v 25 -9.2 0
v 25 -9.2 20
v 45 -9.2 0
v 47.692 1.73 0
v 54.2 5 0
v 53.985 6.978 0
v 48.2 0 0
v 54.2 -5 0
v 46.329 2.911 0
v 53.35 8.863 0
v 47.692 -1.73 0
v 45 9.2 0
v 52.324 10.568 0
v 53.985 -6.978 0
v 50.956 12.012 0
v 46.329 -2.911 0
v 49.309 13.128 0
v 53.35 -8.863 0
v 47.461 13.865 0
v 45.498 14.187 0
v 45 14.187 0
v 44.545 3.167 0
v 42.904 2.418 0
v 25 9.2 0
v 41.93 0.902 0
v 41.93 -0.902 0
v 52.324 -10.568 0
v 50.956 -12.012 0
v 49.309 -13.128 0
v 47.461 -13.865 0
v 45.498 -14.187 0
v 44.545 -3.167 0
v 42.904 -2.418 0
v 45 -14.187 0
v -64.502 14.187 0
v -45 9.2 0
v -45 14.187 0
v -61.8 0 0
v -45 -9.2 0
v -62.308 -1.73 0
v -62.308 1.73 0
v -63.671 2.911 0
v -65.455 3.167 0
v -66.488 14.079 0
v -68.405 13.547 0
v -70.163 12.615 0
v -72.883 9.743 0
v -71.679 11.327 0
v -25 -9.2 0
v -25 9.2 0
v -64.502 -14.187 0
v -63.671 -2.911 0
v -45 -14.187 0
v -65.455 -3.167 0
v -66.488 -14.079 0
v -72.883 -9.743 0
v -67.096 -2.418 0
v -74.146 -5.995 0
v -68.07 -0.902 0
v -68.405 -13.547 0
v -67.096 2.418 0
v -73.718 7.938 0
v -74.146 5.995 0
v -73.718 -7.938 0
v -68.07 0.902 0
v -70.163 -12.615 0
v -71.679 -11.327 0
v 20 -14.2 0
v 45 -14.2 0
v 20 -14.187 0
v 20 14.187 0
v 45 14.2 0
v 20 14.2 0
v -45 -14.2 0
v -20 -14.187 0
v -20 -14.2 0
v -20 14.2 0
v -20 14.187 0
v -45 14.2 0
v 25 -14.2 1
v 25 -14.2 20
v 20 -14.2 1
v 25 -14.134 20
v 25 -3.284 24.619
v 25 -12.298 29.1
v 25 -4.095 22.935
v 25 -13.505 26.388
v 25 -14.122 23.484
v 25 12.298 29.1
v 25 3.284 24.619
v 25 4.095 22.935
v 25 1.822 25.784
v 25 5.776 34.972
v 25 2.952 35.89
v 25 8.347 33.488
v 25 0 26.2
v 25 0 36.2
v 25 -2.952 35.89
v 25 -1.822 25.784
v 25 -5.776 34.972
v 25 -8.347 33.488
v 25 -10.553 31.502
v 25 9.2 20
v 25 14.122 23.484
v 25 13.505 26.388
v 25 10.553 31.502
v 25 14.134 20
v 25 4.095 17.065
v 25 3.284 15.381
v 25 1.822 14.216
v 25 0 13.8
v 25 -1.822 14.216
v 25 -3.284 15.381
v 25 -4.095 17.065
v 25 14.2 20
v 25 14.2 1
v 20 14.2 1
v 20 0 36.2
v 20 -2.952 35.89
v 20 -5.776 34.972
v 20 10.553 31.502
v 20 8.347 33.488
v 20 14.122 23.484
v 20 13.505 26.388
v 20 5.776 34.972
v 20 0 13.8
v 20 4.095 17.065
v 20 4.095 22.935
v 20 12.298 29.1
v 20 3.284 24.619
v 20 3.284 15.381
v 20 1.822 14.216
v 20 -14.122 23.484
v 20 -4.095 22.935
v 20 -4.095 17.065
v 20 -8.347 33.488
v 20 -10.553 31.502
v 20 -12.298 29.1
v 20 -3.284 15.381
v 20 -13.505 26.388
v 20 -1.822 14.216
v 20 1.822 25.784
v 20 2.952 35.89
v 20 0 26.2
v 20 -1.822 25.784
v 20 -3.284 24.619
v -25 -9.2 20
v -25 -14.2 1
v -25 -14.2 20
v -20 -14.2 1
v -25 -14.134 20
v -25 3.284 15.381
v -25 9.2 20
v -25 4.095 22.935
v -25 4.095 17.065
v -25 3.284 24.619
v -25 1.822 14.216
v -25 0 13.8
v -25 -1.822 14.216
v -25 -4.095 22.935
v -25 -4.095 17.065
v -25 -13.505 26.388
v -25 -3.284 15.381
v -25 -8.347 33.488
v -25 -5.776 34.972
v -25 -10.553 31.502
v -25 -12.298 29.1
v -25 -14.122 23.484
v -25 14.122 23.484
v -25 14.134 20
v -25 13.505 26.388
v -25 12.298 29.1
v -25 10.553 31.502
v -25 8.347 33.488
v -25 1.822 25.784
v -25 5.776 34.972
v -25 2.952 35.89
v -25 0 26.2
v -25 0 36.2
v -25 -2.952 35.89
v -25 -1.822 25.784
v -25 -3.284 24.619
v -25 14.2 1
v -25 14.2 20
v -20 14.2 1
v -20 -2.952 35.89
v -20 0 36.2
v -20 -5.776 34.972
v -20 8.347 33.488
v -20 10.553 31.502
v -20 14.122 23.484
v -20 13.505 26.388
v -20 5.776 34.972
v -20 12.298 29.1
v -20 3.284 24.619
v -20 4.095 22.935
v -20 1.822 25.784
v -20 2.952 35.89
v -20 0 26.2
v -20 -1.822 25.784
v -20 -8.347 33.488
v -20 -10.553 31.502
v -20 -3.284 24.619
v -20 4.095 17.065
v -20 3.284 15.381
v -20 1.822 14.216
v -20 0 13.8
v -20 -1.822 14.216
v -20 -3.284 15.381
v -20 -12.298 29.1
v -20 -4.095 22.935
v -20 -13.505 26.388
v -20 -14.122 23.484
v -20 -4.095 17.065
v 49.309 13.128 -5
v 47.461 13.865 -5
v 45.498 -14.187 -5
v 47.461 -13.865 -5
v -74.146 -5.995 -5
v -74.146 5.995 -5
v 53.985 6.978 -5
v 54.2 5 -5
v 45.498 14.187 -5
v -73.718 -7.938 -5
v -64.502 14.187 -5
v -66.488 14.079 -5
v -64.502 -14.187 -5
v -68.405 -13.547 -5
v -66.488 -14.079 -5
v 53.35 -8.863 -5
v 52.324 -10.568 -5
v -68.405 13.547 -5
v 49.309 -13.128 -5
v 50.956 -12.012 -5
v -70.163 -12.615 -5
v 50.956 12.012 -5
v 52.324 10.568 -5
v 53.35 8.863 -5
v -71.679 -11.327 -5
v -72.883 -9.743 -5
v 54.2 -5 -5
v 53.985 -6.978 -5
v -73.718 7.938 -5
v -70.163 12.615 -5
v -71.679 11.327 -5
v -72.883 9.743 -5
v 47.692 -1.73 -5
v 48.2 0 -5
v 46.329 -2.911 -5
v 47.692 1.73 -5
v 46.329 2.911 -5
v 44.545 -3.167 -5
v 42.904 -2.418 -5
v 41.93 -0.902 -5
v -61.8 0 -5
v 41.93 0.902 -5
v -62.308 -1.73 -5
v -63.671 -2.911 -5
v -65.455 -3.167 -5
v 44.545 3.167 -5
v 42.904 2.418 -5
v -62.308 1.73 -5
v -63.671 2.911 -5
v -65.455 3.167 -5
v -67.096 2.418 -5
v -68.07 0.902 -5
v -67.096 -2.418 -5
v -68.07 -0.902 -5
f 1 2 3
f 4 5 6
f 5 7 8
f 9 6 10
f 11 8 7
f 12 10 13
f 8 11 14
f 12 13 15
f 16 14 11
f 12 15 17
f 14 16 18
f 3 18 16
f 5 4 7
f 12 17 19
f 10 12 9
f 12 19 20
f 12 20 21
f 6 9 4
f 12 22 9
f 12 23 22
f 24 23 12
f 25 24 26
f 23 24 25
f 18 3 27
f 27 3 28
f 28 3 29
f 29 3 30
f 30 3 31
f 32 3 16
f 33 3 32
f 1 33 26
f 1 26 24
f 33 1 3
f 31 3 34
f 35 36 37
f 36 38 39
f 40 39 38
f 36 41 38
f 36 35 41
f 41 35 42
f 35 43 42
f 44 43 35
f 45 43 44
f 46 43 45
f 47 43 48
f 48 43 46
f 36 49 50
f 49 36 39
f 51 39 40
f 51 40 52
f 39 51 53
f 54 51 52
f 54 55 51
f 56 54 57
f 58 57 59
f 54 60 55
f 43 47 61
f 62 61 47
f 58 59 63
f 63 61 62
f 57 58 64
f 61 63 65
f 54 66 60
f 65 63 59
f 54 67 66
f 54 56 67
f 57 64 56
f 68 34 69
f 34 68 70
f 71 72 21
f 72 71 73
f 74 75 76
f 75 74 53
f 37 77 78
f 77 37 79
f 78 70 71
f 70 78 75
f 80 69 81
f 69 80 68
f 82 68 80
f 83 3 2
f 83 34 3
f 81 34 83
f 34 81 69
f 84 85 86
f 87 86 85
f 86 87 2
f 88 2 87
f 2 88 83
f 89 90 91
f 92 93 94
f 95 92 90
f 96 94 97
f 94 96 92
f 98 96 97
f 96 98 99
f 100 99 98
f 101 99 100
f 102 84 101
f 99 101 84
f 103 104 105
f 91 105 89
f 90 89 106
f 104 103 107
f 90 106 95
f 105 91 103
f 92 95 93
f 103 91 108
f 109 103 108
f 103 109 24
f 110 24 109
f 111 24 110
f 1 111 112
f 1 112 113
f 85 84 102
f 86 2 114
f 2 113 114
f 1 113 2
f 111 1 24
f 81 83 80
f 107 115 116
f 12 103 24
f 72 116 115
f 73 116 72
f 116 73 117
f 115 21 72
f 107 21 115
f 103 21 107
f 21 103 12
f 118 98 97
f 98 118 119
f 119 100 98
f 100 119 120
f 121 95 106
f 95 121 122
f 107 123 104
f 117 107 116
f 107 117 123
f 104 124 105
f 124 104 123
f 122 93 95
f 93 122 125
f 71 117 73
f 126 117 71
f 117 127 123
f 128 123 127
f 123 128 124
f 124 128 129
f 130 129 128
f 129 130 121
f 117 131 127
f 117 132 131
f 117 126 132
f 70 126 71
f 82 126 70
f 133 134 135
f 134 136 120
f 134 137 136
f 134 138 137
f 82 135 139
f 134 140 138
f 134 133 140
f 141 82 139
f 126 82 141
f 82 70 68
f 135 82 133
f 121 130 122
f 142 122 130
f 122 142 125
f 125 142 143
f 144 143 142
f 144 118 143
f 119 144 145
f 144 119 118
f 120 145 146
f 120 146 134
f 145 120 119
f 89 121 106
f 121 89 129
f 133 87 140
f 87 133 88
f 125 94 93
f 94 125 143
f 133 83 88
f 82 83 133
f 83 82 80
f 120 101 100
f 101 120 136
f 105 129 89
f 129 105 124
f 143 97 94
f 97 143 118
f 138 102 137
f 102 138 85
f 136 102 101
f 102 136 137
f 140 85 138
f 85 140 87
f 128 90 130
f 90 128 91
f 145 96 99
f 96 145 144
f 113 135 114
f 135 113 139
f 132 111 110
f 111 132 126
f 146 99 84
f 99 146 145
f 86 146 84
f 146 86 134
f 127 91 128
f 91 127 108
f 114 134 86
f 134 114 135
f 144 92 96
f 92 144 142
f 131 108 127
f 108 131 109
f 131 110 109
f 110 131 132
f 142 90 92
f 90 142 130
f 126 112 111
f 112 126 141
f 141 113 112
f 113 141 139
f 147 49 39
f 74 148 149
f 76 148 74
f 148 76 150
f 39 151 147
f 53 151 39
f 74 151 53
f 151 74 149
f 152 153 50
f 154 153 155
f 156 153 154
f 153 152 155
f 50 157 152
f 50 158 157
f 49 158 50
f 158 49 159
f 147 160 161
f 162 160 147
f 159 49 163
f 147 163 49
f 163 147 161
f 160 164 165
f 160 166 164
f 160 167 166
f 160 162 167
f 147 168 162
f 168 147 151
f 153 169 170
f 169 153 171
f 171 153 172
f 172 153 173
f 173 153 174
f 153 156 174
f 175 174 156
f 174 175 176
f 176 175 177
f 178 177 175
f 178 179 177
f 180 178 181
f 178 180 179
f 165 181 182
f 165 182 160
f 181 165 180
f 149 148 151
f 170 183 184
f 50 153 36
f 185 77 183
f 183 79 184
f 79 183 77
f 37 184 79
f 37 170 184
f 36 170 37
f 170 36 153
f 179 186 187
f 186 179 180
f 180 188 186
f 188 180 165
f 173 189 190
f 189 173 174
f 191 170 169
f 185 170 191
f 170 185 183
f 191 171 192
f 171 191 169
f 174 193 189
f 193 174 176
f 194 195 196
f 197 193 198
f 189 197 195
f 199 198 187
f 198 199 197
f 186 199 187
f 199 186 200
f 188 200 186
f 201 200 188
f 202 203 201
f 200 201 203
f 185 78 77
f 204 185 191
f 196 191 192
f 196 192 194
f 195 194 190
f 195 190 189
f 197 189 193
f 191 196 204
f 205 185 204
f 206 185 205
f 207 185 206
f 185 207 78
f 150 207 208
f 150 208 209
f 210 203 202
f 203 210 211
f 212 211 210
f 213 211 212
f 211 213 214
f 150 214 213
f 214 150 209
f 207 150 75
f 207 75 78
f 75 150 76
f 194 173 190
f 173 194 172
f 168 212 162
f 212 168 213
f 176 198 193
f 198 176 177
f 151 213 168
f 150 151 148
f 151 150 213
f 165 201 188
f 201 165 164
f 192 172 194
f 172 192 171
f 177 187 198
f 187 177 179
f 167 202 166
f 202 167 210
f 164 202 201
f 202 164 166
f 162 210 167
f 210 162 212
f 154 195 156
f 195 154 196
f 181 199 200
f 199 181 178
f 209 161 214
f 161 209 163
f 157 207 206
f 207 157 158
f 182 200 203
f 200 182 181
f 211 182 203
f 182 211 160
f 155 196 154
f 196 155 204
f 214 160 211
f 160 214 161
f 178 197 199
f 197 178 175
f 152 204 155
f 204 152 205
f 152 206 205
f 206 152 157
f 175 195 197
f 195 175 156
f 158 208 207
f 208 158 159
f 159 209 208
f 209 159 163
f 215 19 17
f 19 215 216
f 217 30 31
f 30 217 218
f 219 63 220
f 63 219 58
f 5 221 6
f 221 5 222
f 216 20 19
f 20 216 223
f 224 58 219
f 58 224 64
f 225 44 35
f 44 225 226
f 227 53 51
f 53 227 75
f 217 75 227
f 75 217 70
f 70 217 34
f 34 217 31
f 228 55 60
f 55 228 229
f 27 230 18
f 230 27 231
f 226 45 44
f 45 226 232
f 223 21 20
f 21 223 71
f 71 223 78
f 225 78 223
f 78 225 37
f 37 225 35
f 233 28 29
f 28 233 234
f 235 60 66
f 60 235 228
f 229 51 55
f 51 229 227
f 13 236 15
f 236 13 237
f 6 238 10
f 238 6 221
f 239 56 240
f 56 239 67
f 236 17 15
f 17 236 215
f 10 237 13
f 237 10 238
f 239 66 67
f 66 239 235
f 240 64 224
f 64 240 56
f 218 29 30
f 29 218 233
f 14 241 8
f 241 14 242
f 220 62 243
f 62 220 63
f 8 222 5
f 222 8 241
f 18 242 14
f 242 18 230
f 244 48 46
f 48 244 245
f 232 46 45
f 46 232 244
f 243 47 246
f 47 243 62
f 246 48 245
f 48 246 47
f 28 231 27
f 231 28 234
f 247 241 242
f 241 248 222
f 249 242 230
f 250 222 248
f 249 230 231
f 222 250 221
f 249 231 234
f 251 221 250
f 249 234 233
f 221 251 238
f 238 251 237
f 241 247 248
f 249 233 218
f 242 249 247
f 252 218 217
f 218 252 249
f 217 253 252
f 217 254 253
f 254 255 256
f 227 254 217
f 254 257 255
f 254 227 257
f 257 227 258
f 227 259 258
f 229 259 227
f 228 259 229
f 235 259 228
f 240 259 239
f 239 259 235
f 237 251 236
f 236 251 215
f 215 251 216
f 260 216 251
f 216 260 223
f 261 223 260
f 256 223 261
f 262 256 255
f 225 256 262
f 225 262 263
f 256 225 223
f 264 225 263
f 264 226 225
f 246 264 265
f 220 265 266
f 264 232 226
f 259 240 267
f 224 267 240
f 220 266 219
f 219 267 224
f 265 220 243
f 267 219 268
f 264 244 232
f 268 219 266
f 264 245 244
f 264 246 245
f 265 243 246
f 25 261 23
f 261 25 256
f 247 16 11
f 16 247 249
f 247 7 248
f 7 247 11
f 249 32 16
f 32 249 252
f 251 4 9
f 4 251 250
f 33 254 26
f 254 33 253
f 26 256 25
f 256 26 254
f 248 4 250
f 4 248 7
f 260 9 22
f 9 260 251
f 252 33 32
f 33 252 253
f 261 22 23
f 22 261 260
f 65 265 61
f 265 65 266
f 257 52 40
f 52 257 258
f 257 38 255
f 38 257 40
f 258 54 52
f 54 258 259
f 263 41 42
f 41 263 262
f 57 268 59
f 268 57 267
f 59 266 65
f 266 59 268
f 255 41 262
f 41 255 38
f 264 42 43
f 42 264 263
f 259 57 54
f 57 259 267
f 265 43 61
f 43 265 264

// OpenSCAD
// hotas throttle mount

module side_mounts(depth=5, spacing=40, dz=20, border=10, adjust=2, r=4.2) {
  
  trim = 0.1;
  trim2 = trim * 2;
  
  module copy_mirror(vec=[0, 1, 0])
  { 
      children(); 
      mirror(vec) children(); 
  }
  
  copy_mirror([1, 0, 0])
  translate([spacing / 2, 0, 0]) {
    
    difference() {
      
      union() {
        
        
        // supports
        copy_mirror([0, 1, 0])
        translate([depth, r + border - depth, 0])
        rotate([-90, 0, 0])
        linear_extrude(depth)
        polygon([ [0, 0], [dz, 0], [0, dz] ]);
      
        hull() {
          translate([0, -(r + border), -1])
          cube([depth, (r + border) * 2, 1]);
          translate([0, 0, -dz - adjust])
          rotate([0, 90, 0])
          cylinder(h = depth, r = r + border);
        }
      }
      
      hull() {
        translate([-trim, 0, -dz + adjust])
        rotate([0, 90, 0])
        cylinder(h = depth + trim2, r = r);
        translate([-trim, 0, -dz - adjust])
        rotate([0, 90, 0])
        cylinder(h = depth + trim2, r = r);
      }
    }
  }
}

module top(depth=5, hole_dx=110, r=3.2, border=6, offset=10) {
  
  trim = 0.1;
  trim2 = trim * 2;
  
  dy = 10;
  
  difference() {
   
    hull() {
      translate([hole_dx / 2 - offset, dy/2, 0])
      cylinder(h=depth, r=r+border);
      translate([-hole_dx / 2 - offset, dy/2, 0])
      cylinder(h=depth, r=r+border);
      translate([hole_dx / 2 - offset, -dy/2, 0])
      cylinder(h=depth, r=r+border);
      translate([-hole_dx / 2 - offset, -dy/2, 0])
      cylinder(h=depth, r=r+border);
    }
    
    translate([hole_dx / 2 - offset, 0, -trim])
    cylinder(h=depth + trim2, r=r);
    translate([-hole_dx / 2 - offset, 0, -trim])
    cylinder(h=depth + trim2, r=r);
  }
   
}

rotate([180, 0, 0]) {
  side_mounts();
  top();
}
